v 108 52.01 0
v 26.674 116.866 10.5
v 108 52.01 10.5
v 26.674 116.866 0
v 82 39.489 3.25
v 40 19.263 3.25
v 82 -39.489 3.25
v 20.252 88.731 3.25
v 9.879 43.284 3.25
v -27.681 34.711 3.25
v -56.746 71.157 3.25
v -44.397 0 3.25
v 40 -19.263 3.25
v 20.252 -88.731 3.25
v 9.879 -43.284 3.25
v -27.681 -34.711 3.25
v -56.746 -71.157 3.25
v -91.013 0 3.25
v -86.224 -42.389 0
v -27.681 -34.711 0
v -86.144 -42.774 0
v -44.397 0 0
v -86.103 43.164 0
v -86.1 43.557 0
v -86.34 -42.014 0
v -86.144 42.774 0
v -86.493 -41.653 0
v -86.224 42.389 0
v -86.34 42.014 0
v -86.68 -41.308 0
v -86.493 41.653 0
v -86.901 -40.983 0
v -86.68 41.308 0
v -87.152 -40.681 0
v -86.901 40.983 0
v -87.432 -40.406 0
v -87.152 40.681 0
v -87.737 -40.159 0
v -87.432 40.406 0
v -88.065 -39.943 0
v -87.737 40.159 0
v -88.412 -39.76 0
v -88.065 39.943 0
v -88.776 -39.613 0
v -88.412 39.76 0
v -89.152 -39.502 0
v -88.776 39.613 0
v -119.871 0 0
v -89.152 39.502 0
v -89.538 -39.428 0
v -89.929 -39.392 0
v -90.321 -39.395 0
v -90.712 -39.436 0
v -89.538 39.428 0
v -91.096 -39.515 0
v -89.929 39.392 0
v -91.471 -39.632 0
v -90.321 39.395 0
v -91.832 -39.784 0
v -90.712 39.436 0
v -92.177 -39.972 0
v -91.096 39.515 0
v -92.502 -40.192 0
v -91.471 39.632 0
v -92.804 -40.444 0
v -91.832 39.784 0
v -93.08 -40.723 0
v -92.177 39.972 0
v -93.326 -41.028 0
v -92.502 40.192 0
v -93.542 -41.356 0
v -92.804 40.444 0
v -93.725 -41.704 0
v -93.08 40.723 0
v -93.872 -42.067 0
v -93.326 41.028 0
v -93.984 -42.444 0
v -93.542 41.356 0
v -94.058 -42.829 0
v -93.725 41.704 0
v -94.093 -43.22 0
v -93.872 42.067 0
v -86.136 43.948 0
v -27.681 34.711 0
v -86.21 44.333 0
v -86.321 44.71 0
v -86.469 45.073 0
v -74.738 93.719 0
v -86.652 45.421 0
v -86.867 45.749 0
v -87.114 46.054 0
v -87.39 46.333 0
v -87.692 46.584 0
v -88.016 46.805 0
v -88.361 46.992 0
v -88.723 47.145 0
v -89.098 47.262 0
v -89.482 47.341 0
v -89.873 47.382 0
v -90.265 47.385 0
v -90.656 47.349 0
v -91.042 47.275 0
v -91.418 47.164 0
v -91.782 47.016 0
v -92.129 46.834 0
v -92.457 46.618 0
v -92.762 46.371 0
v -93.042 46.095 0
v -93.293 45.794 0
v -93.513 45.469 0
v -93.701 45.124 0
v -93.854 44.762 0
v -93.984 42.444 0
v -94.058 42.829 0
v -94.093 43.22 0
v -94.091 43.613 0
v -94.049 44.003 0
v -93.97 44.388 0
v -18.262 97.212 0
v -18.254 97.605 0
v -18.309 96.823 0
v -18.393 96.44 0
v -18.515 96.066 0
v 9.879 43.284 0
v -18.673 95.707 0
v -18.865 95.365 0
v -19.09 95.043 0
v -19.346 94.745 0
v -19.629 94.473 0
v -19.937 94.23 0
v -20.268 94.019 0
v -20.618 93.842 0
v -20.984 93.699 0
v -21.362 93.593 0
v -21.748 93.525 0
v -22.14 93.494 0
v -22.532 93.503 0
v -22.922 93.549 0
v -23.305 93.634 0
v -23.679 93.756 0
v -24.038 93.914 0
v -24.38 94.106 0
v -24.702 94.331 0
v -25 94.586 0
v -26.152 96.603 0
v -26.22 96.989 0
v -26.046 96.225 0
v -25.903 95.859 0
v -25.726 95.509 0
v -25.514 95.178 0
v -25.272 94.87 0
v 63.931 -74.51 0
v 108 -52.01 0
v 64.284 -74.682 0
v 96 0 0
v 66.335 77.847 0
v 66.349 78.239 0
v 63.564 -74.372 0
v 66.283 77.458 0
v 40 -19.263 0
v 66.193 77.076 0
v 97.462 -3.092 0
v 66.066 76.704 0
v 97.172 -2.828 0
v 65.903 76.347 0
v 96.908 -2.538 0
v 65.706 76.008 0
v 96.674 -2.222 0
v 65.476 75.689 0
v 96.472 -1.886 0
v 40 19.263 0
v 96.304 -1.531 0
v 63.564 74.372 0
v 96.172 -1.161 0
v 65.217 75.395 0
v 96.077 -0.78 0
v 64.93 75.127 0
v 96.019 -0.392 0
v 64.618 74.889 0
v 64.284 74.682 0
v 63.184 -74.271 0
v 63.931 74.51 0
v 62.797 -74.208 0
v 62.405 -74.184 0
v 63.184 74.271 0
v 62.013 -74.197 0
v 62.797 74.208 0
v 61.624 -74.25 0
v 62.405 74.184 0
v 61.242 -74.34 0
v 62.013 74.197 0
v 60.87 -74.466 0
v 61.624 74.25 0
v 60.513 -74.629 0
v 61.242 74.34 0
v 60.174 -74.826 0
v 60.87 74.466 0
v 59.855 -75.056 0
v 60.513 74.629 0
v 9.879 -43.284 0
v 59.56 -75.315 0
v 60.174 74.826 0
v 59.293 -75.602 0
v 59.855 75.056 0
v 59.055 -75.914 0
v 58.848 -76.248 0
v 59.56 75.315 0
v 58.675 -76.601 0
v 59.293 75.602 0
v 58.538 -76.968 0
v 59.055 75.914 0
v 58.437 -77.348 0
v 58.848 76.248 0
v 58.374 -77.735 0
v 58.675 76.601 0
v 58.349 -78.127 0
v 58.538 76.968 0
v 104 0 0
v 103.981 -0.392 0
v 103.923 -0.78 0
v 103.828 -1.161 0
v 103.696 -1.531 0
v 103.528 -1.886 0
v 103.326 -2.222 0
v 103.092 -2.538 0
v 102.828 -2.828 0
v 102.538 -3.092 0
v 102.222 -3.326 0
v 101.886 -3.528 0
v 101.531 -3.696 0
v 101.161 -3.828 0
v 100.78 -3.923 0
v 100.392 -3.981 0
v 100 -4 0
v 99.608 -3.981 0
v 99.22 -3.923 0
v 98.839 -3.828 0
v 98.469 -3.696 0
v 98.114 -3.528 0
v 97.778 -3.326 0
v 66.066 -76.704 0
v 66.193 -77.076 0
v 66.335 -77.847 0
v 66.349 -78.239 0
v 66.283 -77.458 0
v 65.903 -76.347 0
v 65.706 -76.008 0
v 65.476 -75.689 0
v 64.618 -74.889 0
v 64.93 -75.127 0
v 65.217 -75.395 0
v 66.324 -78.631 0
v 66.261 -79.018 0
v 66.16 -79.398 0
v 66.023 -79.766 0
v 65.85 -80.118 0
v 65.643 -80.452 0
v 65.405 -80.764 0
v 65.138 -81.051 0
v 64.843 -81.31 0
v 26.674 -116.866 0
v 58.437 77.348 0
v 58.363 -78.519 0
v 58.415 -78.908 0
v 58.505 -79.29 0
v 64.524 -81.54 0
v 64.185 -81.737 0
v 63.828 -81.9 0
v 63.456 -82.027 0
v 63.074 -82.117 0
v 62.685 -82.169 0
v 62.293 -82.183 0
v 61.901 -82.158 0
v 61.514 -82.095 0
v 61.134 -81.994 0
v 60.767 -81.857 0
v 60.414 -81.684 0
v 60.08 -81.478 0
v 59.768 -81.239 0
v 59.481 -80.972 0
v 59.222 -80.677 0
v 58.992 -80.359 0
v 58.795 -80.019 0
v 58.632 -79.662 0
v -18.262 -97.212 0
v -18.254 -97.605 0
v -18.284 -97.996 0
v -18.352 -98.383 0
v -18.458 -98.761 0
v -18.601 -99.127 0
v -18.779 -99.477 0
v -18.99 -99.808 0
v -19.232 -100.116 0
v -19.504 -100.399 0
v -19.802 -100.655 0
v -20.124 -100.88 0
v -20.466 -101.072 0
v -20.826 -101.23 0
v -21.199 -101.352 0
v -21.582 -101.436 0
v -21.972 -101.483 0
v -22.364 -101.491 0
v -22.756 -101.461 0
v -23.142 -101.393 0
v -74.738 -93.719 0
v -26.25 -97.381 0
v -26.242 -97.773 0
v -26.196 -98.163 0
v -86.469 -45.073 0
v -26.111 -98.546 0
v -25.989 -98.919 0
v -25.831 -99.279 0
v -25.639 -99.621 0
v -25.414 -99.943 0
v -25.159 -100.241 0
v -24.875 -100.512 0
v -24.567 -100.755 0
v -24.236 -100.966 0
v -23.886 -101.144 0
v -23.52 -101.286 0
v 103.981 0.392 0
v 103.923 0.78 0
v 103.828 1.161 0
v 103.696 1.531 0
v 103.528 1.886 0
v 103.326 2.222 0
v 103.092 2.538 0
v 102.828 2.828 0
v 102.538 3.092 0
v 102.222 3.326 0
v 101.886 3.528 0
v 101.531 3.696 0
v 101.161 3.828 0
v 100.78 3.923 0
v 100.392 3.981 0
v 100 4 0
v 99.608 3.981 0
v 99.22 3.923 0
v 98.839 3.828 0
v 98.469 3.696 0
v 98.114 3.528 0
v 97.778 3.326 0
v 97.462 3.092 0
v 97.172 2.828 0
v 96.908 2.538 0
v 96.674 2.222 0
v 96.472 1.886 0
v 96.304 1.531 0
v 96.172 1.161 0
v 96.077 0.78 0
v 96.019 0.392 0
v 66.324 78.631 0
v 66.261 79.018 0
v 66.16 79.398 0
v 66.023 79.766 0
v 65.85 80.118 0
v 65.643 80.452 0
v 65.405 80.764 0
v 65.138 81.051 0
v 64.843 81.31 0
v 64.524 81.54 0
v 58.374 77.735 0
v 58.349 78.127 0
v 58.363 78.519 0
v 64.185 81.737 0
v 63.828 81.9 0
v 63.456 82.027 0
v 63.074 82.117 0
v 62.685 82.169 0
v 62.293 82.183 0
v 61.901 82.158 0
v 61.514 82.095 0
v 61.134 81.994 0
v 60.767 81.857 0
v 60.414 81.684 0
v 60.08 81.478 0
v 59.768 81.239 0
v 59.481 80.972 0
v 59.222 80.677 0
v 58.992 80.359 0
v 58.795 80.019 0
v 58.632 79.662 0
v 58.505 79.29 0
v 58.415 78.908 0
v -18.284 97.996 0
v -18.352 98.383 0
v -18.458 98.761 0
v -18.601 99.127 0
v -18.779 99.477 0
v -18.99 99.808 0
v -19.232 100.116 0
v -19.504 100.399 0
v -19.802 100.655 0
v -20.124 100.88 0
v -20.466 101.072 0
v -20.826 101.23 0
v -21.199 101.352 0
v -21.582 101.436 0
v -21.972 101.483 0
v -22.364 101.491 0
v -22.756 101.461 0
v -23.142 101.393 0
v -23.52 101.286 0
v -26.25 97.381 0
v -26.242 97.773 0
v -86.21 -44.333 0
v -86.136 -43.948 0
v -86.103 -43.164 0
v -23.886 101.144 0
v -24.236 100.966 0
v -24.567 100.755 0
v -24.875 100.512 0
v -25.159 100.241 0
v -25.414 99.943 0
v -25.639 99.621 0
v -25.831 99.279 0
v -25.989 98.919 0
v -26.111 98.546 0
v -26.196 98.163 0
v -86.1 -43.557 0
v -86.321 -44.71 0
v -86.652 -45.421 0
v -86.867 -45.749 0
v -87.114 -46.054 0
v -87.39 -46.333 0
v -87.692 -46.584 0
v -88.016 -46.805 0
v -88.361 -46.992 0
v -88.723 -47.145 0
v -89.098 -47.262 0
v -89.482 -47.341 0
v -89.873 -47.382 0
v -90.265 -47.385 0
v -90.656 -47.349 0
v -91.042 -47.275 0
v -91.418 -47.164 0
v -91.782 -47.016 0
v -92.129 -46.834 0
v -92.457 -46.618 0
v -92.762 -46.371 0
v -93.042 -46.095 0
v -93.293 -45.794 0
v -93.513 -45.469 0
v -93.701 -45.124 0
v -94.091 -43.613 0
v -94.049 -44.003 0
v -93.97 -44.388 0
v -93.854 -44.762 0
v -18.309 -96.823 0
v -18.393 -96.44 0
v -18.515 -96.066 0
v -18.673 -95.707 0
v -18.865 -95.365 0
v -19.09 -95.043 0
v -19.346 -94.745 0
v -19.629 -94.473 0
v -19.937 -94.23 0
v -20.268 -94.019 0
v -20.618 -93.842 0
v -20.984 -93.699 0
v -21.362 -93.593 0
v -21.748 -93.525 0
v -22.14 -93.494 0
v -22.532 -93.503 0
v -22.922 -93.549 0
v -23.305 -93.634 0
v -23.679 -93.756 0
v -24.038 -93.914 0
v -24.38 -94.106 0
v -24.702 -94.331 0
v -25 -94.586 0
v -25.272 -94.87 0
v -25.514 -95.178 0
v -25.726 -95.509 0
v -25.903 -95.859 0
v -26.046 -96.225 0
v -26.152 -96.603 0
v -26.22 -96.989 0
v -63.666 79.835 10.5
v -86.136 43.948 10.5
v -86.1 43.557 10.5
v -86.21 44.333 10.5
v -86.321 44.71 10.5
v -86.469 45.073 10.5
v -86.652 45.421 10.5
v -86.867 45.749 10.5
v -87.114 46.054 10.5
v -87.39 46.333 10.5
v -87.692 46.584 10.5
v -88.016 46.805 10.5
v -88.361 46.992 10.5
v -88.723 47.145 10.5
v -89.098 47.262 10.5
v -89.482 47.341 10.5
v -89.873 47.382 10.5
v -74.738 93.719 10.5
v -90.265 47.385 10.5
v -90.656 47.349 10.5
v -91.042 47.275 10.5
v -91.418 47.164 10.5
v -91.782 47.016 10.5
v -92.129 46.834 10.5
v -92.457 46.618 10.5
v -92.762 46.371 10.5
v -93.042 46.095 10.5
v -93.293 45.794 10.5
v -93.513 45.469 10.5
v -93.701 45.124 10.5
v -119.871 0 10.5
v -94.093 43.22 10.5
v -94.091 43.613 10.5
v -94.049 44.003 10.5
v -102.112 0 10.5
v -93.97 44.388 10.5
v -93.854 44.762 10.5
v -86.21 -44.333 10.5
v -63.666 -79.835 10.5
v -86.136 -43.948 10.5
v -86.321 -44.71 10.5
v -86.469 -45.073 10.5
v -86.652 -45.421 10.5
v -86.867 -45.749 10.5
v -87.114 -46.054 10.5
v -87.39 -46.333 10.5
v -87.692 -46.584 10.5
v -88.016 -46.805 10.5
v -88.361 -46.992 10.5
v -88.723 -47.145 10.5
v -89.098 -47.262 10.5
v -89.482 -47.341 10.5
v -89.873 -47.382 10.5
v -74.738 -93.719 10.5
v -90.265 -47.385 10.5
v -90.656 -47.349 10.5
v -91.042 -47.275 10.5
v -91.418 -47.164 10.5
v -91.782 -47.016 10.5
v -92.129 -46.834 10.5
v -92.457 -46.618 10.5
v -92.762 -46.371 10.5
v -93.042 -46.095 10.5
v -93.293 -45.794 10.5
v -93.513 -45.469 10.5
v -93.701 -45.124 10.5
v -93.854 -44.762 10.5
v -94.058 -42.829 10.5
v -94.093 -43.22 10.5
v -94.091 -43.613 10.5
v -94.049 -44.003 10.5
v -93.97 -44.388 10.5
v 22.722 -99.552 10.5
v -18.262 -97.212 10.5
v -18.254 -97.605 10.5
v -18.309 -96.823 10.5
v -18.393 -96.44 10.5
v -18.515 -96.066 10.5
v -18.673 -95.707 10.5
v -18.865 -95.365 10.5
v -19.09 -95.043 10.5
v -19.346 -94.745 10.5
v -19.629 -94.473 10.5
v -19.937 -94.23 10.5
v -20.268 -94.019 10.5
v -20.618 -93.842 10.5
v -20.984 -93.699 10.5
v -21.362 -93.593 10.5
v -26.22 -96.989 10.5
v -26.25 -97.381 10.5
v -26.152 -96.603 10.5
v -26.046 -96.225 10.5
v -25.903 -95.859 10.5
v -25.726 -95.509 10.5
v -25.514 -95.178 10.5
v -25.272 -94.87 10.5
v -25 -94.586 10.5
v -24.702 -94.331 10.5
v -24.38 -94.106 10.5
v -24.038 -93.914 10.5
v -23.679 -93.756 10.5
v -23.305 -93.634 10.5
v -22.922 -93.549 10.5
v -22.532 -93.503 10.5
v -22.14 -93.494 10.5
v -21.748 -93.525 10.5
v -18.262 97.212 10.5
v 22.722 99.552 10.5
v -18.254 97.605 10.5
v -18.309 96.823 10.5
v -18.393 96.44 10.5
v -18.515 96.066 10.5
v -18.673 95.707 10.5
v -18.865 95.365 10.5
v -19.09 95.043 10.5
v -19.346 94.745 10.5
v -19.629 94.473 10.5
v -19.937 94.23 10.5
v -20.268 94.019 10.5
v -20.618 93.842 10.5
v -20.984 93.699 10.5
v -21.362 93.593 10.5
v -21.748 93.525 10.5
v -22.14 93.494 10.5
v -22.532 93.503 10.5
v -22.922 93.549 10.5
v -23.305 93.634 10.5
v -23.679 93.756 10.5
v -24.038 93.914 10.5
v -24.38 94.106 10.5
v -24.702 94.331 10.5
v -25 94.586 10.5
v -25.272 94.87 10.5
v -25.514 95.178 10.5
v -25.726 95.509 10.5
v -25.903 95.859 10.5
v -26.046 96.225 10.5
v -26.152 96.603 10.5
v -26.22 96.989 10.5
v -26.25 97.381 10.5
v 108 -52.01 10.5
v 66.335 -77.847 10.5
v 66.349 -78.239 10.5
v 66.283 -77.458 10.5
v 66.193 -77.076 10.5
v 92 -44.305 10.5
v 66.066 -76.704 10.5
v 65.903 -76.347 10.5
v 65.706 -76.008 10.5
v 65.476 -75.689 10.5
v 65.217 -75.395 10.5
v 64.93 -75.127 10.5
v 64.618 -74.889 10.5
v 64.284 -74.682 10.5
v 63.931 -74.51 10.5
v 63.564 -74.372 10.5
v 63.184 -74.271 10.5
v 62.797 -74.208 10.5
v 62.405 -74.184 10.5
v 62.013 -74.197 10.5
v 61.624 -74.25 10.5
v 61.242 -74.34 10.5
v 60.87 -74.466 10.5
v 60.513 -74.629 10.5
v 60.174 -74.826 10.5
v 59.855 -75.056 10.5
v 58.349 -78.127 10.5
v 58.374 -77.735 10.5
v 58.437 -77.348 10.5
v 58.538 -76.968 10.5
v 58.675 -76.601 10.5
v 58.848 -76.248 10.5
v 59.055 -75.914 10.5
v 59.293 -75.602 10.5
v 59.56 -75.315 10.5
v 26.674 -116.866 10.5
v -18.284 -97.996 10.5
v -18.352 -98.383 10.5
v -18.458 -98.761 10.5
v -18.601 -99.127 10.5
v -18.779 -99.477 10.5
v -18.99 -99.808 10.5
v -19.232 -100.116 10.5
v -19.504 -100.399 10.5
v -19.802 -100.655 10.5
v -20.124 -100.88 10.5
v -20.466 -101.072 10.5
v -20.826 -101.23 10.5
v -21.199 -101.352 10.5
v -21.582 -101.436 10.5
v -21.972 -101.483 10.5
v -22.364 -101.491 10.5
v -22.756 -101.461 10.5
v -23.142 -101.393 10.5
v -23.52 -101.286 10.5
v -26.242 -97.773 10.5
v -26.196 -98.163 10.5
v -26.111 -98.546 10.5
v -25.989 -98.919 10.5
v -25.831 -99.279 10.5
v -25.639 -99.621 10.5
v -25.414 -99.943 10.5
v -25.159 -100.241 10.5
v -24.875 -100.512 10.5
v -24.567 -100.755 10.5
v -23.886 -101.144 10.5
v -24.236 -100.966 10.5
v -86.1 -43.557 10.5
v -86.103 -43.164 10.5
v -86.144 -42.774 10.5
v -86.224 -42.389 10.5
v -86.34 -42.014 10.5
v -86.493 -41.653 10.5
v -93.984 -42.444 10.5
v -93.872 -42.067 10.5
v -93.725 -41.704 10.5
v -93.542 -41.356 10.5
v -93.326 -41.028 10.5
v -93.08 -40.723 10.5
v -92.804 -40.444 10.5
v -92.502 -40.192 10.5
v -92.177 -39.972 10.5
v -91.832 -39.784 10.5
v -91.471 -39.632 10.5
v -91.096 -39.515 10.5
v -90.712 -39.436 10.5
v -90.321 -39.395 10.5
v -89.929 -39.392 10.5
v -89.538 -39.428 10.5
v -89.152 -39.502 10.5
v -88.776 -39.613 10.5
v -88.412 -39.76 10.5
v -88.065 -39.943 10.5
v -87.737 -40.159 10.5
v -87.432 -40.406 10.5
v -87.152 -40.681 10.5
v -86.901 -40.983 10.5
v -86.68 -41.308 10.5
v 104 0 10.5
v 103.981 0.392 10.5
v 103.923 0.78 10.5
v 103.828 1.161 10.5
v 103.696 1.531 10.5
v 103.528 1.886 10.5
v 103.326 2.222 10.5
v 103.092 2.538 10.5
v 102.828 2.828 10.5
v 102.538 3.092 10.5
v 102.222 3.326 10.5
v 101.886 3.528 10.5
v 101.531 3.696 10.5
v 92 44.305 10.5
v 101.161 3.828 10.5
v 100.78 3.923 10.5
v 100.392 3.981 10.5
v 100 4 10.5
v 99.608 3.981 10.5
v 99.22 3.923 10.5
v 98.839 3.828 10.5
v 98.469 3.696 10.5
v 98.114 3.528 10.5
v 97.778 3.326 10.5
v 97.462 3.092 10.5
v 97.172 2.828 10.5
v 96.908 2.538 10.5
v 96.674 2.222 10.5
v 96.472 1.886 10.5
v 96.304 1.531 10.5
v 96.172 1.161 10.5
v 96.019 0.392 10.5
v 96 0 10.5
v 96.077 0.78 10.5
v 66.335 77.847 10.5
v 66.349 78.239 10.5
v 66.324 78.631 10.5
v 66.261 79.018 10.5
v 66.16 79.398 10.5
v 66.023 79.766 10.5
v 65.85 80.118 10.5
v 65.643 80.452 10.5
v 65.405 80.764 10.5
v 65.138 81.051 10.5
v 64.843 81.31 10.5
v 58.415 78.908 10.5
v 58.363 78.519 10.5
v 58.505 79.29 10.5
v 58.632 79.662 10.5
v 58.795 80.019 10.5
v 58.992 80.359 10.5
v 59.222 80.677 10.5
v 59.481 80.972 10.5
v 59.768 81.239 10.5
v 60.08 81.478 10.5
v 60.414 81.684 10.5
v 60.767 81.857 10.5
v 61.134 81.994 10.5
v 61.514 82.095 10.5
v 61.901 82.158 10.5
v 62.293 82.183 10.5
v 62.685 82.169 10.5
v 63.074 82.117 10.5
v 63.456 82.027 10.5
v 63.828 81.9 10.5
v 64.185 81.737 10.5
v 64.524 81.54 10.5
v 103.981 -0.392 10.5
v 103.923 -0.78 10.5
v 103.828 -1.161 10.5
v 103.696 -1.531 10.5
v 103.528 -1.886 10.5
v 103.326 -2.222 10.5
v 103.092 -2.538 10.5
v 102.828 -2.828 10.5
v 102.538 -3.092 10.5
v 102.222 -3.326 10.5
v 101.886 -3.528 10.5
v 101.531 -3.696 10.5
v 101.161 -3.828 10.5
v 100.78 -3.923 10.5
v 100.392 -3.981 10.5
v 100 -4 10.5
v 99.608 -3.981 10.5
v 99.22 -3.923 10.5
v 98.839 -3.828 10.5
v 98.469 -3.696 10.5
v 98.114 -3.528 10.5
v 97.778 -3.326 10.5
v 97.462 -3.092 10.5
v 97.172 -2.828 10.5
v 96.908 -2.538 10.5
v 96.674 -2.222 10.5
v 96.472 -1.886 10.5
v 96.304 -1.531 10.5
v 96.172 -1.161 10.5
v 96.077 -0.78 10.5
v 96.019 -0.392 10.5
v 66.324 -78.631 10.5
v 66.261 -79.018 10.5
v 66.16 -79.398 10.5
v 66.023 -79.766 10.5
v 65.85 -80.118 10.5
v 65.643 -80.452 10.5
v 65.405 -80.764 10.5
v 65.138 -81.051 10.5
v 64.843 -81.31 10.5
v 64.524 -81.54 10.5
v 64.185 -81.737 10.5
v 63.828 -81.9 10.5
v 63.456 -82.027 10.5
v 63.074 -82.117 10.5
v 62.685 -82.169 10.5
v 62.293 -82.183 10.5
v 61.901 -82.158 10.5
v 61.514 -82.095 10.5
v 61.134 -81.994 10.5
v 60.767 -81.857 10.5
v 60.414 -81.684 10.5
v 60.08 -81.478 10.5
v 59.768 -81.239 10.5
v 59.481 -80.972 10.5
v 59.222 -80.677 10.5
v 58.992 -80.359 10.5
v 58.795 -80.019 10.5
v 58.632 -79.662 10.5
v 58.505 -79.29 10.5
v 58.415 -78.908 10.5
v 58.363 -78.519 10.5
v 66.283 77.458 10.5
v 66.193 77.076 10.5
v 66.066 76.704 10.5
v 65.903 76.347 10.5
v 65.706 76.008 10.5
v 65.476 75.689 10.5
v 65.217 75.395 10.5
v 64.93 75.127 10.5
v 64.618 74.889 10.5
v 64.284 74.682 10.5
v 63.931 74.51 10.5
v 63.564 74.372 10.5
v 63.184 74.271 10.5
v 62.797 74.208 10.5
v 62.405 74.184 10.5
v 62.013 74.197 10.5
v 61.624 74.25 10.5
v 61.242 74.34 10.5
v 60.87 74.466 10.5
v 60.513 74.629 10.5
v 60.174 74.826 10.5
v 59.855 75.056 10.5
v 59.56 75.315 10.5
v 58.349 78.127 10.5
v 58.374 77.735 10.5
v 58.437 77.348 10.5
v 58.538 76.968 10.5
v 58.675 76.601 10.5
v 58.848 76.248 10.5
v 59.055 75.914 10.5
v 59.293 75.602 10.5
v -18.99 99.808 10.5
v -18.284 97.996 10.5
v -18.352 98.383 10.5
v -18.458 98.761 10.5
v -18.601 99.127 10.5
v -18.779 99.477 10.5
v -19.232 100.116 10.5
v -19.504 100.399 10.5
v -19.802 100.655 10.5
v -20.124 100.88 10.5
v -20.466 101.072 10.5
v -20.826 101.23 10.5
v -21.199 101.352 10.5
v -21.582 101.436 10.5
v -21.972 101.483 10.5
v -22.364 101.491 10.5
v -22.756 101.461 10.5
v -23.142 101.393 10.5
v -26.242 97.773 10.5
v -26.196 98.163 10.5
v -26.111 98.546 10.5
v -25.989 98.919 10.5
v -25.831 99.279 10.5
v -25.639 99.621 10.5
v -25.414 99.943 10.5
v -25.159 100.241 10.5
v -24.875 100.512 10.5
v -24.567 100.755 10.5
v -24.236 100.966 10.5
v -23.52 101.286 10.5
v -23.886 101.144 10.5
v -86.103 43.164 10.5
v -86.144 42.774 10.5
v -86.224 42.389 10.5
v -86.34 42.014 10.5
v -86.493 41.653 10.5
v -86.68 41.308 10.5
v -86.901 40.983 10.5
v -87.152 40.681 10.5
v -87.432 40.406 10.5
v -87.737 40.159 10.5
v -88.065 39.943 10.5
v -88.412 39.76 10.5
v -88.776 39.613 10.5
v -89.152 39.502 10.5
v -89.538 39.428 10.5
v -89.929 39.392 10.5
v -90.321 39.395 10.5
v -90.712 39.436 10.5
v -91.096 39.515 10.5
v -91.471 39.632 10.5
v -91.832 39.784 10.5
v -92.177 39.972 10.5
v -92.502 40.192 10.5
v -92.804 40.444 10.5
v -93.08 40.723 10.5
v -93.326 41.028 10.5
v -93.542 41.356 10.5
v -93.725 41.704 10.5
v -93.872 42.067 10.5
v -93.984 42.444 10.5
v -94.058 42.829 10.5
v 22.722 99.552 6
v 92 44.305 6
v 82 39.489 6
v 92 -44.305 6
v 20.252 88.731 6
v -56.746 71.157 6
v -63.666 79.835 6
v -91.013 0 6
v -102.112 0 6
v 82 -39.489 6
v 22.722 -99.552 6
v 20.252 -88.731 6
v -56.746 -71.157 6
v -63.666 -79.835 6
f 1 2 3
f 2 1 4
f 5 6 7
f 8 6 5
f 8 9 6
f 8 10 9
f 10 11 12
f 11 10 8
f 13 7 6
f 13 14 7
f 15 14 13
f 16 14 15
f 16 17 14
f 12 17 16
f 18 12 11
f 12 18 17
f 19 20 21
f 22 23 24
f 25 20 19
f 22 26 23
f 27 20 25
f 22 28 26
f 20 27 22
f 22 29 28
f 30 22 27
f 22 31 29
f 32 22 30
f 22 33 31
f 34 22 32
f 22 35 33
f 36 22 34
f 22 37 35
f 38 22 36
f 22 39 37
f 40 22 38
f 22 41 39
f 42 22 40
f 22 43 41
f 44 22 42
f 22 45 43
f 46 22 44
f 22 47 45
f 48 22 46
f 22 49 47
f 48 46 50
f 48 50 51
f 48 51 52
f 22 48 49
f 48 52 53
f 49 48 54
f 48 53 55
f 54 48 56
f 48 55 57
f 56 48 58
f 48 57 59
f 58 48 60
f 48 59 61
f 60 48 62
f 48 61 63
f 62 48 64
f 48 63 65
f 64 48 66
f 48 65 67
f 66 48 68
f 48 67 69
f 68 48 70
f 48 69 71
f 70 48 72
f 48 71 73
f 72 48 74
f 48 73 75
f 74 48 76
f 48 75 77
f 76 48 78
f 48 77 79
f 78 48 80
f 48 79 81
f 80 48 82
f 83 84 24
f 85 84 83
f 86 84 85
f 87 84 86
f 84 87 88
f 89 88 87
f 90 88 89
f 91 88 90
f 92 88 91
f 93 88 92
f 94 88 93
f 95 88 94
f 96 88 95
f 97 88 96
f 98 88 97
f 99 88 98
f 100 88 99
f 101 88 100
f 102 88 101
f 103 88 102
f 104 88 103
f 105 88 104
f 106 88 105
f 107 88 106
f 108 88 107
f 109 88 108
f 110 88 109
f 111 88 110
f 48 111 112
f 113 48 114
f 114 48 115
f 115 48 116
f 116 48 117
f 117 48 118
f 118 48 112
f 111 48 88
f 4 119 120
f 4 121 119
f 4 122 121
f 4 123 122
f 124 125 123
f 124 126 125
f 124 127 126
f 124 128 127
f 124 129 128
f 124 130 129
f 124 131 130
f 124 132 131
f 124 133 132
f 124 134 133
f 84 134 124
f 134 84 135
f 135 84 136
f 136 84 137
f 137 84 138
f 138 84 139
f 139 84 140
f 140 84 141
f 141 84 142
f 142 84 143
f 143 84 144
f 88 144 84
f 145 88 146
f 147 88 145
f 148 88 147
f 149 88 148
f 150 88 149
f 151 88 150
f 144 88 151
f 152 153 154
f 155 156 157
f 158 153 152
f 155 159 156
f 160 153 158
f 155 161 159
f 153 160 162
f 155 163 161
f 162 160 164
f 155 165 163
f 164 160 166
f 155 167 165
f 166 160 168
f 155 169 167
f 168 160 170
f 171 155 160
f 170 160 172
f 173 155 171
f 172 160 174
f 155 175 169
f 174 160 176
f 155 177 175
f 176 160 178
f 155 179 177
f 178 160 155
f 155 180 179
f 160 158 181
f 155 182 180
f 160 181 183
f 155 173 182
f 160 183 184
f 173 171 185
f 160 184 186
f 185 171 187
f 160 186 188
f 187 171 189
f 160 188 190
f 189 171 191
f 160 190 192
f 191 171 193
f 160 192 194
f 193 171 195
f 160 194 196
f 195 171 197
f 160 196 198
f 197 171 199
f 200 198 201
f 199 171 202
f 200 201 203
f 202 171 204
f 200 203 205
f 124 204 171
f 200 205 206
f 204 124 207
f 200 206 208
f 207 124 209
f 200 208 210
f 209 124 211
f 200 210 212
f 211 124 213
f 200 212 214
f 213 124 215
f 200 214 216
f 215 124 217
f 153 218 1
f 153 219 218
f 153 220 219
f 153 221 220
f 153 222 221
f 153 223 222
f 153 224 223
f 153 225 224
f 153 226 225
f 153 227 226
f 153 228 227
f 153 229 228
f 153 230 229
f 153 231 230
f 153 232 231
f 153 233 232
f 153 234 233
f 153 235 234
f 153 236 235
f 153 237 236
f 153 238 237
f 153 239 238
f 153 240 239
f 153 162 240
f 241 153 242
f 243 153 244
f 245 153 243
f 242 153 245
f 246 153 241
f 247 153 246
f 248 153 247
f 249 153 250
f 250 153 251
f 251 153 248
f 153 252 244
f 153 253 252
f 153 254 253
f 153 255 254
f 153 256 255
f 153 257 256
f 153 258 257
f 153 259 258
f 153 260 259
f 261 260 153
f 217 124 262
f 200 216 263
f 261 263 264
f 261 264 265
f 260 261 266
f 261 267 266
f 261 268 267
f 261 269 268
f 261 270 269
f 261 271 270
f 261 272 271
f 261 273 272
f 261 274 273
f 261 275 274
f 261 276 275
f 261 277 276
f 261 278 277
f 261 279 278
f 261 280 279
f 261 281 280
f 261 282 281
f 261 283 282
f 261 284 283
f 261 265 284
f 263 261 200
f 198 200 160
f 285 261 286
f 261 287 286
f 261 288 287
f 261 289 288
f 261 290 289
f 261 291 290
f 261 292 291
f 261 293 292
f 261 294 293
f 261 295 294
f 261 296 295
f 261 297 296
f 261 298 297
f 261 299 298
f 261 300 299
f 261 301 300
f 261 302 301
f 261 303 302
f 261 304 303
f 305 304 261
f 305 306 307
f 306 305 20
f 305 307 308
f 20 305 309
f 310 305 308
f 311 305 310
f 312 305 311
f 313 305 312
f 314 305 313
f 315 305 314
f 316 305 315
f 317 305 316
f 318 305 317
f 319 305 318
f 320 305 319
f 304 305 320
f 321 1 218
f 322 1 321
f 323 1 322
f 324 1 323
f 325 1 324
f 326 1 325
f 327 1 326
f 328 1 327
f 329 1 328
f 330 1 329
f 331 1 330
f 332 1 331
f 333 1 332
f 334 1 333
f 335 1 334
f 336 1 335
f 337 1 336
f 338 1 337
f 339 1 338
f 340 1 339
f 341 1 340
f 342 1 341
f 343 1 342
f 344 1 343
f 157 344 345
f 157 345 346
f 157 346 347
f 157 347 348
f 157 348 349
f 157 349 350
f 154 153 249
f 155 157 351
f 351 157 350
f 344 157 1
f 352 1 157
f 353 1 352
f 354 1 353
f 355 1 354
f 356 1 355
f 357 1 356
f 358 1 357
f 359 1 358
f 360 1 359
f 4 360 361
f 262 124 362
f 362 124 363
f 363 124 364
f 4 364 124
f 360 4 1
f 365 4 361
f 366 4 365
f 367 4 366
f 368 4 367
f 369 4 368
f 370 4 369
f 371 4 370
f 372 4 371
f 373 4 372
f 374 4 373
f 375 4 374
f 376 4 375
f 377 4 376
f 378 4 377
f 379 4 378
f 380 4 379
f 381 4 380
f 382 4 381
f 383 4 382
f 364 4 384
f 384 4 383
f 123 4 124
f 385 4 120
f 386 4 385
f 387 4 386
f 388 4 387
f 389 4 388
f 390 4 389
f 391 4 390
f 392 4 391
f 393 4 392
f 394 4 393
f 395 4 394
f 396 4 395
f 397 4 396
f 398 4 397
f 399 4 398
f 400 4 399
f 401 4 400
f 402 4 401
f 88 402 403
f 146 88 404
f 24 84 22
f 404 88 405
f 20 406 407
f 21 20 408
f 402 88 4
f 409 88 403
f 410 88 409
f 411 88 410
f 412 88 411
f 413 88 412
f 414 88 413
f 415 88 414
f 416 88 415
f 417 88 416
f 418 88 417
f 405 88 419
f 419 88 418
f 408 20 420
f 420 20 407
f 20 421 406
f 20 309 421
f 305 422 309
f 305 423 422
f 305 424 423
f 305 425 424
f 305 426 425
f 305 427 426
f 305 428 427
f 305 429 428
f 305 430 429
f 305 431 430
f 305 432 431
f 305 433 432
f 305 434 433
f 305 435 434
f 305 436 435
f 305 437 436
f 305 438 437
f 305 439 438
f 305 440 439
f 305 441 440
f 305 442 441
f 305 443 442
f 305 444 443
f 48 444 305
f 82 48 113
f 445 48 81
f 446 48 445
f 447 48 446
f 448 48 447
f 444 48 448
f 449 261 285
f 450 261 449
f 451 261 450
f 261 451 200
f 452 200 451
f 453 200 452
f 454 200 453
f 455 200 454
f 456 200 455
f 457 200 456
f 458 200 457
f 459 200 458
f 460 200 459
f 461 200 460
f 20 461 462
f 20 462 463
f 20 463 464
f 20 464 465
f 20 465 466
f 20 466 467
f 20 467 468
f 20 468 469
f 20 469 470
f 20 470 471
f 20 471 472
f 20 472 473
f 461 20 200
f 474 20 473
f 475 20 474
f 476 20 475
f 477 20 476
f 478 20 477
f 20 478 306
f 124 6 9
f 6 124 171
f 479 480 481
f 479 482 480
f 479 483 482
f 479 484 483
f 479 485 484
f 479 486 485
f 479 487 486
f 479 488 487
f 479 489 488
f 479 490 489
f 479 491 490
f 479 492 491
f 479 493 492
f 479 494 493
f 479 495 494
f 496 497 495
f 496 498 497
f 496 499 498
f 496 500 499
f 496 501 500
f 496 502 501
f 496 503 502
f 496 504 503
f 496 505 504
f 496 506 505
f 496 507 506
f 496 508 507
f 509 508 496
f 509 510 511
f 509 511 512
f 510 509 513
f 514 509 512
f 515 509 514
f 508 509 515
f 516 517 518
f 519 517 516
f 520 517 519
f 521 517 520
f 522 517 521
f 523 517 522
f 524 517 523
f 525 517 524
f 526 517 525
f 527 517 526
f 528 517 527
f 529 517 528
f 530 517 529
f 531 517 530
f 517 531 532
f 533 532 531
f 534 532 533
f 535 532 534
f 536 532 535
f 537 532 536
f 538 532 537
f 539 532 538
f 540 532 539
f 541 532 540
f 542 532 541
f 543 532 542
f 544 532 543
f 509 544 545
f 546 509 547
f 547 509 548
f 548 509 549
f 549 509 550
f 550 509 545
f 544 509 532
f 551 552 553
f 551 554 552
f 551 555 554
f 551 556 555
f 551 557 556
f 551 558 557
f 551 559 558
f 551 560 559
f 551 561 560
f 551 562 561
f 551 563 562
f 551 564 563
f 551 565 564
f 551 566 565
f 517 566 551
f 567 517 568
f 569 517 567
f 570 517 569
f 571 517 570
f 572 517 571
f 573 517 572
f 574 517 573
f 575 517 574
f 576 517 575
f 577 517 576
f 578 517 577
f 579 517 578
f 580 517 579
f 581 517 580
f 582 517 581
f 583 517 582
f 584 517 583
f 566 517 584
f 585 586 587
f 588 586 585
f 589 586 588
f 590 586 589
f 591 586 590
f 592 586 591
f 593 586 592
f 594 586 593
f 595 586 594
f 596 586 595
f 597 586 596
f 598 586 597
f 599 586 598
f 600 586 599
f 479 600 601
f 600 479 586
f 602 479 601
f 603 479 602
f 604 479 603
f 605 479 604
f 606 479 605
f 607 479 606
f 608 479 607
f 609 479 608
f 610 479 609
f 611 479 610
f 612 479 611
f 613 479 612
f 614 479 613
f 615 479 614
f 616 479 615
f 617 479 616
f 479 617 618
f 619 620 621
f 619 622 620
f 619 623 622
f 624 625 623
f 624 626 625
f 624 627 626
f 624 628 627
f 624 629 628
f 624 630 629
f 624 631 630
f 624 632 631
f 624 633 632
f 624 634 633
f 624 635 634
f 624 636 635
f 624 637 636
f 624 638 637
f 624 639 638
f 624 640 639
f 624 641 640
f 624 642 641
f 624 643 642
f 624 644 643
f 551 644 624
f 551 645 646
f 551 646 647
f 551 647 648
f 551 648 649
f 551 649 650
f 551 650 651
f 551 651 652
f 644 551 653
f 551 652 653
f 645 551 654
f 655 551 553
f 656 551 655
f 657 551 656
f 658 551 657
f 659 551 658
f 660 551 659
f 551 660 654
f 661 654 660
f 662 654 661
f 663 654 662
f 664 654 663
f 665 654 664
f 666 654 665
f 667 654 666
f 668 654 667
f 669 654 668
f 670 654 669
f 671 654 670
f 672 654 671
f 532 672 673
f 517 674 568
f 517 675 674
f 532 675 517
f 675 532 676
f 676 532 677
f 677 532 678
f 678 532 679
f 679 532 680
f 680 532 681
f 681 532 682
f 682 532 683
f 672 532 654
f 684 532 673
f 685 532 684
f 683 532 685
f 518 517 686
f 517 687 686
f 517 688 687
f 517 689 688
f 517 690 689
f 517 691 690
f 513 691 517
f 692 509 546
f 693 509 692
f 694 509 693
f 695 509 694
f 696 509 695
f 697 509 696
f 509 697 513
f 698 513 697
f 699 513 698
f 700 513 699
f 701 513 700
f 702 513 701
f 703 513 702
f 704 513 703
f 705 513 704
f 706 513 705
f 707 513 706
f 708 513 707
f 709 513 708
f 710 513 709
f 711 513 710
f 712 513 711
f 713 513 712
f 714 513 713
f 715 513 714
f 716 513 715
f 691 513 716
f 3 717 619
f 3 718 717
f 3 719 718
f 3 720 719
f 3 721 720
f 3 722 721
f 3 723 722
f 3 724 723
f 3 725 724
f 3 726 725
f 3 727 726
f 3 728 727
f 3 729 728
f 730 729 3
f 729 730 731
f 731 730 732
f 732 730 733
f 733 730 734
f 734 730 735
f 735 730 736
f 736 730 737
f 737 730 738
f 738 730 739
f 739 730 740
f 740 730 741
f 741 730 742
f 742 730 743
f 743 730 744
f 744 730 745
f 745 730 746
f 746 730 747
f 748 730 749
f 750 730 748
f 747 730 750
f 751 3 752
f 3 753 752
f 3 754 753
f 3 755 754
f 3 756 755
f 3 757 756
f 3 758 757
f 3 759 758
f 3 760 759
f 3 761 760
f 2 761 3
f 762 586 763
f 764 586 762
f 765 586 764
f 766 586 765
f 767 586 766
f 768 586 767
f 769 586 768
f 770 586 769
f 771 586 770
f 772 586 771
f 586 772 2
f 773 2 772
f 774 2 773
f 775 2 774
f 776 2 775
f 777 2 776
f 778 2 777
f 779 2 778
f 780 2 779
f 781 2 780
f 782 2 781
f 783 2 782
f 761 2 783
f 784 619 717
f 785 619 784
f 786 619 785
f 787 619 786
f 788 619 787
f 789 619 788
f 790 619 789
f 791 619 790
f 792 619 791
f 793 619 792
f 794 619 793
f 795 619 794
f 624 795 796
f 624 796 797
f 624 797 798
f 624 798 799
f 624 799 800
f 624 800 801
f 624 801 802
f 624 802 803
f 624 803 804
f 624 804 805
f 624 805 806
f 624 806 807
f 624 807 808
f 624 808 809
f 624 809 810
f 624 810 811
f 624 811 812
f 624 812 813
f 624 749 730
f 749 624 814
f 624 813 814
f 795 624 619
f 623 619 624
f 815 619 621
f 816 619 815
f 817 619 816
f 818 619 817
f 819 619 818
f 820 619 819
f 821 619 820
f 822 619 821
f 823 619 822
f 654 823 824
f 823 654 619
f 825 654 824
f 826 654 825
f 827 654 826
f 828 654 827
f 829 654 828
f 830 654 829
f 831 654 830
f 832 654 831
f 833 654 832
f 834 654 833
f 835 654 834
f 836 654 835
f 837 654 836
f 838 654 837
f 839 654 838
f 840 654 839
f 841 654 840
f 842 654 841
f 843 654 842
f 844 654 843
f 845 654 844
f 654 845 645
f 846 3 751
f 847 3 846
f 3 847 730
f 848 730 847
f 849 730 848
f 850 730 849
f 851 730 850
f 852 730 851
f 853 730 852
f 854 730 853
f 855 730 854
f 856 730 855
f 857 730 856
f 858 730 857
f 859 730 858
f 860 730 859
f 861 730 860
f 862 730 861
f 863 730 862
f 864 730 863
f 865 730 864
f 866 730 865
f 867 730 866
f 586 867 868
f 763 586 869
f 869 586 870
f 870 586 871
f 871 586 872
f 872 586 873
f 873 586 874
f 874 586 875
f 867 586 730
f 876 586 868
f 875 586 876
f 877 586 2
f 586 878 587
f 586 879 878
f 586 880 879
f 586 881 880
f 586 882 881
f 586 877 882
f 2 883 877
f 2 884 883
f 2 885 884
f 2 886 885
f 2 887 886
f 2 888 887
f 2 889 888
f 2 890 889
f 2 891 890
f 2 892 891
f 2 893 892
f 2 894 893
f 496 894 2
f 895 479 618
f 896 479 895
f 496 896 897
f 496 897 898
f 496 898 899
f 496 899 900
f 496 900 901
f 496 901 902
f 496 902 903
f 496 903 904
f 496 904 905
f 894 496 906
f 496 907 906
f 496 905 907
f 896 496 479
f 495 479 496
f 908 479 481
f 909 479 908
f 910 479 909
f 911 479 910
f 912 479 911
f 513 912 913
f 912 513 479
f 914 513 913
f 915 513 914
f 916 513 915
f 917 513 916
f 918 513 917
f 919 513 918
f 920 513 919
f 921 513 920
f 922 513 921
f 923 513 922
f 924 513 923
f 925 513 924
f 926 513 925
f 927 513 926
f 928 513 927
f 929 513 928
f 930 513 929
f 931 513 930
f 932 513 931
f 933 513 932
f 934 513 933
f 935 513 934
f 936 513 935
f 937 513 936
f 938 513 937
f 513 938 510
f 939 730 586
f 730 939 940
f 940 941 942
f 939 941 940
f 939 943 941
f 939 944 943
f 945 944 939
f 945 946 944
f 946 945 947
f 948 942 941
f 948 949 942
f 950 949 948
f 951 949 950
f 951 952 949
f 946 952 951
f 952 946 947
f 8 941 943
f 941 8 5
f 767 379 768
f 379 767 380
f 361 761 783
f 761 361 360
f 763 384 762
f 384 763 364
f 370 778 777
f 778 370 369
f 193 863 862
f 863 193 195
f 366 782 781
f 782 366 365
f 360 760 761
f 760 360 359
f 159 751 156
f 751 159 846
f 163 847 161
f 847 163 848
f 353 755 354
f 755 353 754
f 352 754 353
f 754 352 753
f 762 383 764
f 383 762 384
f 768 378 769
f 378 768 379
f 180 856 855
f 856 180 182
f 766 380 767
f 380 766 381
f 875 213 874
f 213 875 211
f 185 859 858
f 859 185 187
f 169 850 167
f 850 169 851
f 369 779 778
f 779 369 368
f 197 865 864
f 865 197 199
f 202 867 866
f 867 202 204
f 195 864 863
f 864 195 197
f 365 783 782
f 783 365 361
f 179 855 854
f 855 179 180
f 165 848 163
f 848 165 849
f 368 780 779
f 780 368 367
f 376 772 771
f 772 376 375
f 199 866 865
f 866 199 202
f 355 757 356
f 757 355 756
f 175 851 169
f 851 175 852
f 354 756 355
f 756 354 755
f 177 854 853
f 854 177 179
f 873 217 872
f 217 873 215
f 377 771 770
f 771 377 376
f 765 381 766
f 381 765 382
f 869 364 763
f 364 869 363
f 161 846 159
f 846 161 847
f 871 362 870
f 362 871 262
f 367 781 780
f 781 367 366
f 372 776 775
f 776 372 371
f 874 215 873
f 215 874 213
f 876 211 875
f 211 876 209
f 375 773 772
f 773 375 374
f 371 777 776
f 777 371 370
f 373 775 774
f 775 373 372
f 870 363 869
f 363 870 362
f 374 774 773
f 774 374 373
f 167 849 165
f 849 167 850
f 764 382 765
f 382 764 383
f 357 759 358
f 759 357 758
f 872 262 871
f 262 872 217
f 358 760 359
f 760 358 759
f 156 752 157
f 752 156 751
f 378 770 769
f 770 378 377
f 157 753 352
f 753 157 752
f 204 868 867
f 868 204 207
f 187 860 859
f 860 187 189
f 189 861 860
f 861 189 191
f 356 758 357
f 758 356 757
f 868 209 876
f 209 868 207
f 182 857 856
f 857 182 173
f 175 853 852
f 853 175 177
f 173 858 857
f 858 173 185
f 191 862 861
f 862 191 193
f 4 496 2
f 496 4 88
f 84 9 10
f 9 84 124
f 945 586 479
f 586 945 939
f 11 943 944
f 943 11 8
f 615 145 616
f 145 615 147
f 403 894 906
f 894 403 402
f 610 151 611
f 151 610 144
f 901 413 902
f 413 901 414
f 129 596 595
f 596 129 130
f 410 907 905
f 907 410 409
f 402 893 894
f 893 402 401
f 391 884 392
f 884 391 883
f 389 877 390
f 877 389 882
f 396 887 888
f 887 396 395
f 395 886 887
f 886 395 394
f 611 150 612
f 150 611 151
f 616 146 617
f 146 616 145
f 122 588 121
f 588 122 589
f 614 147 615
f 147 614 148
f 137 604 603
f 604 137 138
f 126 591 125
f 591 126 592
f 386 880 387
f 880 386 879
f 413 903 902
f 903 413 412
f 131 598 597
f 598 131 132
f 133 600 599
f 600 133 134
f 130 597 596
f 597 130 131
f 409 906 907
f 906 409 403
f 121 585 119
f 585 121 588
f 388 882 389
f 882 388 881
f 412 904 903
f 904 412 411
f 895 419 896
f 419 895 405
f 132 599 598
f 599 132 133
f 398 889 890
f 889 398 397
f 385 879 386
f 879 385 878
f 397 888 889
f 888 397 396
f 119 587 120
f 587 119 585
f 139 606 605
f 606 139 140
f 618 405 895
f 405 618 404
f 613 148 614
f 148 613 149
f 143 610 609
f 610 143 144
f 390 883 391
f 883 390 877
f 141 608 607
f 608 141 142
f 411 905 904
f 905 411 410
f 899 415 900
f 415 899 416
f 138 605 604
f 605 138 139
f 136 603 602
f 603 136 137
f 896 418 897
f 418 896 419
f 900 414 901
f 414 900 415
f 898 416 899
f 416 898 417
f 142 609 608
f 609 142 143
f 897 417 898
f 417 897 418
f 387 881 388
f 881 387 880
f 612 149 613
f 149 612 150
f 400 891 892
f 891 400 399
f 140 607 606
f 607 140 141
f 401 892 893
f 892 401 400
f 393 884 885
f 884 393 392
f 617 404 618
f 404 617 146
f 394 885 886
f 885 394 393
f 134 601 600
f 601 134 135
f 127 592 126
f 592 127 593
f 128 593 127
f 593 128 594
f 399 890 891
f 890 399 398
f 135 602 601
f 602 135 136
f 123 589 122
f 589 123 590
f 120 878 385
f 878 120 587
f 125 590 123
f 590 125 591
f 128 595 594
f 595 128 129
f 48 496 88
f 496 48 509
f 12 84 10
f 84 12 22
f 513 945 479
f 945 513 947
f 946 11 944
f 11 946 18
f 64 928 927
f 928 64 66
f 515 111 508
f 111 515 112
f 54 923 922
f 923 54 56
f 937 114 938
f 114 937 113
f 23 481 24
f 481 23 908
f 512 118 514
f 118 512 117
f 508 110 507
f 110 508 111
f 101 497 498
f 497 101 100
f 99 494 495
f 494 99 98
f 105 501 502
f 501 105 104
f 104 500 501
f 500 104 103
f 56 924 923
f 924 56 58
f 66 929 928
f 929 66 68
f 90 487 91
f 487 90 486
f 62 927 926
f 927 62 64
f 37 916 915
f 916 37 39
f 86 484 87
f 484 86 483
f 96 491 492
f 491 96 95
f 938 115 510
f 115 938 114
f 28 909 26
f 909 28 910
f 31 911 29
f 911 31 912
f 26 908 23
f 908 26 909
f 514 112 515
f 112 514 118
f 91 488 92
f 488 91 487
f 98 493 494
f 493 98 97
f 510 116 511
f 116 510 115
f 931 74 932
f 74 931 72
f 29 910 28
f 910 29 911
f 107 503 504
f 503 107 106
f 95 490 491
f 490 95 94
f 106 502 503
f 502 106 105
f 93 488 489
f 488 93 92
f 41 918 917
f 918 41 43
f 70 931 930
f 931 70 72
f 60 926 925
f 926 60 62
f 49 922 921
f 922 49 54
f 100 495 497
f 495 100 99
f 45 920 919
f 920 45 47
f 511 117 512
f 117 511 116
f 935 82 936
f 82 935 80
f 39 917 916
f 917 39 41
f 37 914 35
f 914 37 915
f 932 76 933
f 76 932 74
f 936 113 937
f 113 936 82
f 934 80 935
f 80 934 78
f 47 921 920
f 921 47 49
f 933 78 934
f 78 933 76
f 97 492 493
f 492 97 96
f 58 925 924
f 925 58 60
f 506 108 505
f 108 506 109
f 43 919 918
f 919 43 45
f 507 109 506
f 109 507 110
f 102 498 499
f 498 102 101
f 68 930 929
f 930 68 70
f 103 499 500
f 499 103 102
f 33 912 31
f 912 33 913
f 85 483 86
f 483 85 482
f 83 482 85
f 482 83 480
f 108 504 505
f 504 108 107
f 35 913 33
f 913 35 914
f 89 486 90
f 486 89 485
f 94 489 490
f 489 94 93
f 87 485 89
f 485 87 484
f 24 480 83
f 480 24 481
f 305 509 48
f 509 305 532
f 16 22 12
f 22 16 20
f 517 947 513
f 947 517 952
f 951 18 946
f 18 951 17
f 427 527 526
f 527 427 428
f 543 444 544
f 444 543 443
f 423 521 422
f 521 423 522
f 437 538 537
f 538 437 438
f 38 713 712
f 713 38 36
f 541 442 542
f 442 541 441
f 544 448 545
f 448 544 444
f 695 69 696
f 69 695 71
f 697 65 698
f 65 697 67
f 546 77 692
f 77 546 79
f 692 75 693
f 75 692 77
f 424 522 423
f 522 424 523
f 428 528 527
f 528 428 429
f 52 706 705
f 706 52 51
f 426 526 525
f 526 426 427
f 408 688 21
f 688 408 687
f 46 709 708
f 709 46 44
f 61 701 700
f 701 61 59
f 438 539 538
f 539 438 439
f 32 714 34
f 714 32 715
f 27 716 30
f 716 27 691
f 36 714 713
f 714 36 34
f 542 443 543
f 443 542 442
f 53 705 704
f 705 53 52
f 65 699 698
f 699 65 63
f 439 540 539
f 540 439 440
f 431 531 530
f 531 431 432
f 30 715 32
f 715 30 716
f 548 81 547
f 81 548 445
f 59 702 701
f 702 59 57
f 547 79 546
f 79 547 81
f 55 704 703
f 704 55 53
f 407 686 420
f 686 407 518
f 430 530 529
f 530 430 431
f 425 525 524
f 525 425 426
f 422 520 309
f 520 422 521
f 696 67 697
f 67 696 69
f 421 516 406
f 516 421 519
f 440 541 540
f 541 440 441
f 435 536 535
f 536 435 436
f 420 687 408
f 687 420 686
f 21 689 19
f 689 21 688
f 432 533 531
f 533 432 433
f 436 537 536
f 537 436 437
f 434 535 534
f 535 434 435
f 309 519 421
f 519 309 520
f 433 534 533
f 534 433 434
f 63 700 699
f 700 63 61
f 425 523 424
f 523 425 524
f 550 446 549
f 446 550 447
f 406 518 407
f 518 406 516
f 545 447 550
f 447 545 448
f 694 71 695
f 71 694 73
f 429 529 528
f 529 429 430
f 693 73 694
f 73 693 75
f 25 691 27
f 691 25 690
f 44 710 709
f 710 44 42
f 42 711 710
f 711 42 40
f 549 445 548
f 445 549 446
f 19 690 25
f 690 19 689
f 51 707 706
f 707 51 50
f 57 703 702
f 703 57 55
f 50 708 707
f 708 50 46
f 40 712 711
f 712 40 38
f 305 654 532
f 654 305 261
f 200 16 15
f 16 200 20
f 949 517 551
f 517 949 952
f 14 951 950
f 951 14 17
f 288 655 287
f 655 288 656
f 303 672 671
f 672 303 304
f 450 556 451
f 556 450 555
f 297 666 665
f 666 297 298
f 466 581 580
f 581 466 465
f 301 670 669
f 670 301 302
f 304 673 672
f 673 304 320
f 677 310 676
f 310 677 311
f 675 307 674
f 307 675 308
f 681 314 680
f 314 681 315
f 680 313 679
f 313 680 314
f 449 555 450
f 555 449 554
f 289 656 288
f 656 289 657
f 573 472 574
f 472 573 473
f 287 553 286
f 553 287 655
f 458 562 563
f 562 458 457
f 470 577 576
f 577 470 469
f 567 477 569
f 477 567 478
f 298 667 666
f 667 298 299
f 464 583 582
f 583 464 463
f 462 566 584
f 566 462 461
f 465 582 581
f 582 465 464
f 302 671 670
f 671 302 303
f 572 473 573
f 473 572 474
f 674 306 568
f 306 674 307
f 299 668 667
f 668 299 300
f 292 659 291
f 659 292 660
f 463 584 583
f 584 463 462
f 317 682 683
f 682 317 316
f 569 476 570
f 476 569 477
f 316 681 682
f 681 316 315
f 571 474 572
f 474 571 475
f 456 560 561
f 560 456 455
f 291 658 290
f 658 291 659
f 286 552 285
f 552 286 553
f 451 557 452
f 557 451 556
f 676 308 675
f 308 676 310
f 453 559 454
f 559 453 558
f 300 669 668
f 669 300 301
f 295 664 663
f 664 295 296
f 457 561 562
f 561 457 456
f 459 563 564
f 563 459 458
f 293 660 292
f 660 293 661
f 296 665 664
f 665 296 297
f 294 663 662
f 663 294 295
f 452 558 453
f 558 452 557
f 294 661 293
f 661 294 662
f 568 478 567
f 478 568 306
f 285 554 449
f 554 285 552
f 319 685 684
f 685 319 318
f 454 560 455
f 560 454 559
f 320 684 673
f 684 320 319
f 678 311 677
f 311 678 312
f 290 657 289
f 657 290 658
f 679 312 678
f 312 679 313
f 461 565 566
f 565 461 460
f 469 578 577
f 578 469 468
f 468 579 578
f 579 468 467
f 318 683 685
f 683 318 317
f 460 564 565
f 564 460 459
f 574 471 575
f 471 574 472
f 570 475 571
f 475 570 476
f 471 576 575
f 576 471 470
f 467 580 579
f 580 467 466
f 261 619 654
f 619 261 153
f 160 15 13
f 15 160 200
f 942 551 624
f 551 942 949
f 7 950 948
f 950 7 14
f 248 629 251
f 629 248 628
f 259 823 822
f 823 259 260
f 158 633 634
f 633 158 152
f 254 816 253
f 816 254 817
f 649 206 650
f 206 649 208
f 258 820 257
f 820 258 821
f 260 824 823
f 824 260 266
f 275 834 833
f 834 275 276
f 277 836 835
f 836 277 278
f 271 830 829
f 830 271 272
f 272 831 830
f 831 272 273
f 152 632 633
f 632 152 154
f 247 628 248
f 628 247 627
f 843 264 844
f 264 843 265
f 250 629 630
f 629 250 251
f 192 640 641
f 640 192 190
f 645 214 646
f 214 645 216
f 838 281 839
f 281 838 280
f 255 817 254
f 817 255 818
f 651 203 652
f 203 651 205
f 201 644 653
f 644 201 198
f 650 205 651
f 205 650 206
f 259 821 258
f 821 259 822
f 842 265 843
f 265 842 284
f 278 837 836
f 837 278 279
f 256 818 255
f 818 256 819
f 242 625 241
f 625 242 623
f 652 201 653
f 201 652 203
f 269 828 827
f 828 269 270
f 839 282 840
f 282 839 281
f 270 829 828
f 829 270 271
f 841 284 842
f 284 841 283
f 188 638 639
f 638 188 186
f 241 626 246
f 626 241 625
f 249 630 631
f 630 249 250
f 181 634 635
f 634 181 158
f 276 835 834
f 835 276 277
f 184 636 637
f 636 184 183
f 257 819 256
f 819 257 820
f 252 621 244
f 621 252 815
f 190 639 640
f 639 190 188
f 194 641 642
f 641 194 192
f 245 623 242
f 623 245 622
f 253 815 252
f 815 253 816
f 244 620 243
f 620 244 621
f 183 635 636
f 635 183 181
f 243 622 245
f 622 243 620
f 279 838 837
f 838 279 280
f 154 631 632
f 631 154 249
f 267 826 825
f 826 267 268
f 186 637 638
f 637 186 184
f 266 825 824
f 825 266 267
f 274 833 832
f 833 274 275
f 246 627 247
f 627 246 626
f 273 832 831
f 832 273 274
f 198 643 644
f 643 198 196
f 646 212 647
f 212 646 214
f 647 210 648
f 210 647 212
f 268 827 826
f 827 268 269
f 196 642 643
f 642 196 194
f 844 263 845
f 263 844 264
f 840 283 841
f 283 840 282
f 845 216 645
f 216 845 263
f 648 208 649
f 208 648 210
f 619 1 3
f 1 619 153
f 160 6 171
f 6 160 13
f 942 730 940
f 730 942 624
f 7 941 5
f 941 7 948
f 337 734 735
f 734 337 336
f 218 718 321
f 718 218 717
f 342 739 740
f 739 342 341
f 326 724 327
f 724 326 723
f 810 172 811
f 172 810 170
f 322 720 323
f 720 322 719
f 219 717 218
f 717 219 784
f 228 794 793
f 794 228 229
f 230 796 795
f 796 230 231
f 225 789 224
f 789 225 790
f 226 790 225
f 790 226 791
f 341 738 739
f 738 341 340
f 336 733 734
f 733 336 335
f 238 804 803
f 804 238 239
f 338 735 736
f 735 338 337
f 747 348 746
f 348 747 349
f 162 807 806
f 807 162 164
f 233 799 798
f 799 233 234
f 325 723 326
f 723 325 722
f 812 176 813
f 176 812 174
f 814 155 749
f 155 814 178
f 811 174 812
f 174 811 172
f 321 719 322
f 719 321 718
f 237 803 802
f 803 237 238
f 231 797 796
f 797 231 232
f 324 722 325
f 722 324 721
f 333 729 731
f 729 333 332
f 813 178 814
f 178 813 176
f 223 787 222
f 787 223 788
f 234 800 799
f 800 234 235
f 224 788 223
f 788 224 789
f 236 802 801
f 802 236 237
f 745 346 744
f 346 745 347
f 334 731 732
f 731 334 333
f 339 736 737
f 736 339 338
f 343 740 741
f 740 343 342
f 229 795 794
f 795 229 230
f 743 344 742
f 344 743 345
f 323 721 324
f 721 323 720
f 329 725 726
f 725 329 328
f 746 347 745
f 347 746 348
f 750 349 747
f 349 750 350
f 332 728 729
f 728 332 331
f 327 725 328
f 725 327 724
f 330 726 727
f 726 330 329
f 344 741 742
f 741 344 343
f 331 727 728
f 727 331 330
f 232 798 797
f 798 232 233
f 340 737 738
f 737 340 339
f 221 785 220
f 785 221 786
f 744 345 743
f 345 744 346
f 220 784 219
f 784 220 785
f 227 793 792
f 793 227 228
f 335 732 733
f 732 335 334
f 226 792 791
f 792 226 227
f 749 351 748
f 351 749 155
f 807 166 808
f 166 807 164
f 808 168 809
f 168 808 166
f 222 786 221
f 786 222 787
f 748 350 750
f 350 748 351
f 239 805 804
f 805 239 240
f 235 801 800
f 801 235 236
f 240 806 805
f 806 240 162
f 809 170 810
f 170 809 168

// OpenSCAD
//define dimensions. All in mm
num_cams = 7;
plate_thickness = 3.25; // thickness of base plate
mid_thickness = 6; // Thickness of inner raised area (first "step")
edge_thickness = 10.5; // Thickness of the raised edge where the holes are
edge_width_from_hole = 4; // Width of the edge, material on each side of the hole
hole_diameter = 8; 
radius_to_hole = 100; // Distance from center to the center of the mounting holes
mid_area_width = 10; // Width of the inner raised area
radius_central_gap = 40; // Radius of the empty central area

// Don't touch
rotate_angle = 360/num_cams;
overhang = edge_width_from_hole + hole_diameter/2;
plate_length = radius_to_hole + overhang;
poly_side = tan(360/(num_cams * 2)) * 2 *
            (plate_length);

for (cam = [1 : num_cams]){
    rotate([0, 0, cam * rotate_angle]){
        difference(){
            union(){
                translate([radius_central_gap, -poly_side / 2, 0]){
                    cube([plate_length - radius_central_gap, poly_side, plate_thickness]);
                }
                translate([radius_to_hole - overhang,-poly_side / 2,0]){
                    cube([overhang * 2, poly_side, edge_thickness]);
                }
                translate([radius_to_hole - overhang - mid_area_width, -poly_side / 2, 0]){
                    cube([mid_area_width, poly_side, mid_thickness]);
                }
            }
            translate([radius_to_hole, 0, -1]){
                cylinder(r = hole_diameter / 2, h = edge_thickness + 2, $fn = 64);
            }
        }
    }
}
